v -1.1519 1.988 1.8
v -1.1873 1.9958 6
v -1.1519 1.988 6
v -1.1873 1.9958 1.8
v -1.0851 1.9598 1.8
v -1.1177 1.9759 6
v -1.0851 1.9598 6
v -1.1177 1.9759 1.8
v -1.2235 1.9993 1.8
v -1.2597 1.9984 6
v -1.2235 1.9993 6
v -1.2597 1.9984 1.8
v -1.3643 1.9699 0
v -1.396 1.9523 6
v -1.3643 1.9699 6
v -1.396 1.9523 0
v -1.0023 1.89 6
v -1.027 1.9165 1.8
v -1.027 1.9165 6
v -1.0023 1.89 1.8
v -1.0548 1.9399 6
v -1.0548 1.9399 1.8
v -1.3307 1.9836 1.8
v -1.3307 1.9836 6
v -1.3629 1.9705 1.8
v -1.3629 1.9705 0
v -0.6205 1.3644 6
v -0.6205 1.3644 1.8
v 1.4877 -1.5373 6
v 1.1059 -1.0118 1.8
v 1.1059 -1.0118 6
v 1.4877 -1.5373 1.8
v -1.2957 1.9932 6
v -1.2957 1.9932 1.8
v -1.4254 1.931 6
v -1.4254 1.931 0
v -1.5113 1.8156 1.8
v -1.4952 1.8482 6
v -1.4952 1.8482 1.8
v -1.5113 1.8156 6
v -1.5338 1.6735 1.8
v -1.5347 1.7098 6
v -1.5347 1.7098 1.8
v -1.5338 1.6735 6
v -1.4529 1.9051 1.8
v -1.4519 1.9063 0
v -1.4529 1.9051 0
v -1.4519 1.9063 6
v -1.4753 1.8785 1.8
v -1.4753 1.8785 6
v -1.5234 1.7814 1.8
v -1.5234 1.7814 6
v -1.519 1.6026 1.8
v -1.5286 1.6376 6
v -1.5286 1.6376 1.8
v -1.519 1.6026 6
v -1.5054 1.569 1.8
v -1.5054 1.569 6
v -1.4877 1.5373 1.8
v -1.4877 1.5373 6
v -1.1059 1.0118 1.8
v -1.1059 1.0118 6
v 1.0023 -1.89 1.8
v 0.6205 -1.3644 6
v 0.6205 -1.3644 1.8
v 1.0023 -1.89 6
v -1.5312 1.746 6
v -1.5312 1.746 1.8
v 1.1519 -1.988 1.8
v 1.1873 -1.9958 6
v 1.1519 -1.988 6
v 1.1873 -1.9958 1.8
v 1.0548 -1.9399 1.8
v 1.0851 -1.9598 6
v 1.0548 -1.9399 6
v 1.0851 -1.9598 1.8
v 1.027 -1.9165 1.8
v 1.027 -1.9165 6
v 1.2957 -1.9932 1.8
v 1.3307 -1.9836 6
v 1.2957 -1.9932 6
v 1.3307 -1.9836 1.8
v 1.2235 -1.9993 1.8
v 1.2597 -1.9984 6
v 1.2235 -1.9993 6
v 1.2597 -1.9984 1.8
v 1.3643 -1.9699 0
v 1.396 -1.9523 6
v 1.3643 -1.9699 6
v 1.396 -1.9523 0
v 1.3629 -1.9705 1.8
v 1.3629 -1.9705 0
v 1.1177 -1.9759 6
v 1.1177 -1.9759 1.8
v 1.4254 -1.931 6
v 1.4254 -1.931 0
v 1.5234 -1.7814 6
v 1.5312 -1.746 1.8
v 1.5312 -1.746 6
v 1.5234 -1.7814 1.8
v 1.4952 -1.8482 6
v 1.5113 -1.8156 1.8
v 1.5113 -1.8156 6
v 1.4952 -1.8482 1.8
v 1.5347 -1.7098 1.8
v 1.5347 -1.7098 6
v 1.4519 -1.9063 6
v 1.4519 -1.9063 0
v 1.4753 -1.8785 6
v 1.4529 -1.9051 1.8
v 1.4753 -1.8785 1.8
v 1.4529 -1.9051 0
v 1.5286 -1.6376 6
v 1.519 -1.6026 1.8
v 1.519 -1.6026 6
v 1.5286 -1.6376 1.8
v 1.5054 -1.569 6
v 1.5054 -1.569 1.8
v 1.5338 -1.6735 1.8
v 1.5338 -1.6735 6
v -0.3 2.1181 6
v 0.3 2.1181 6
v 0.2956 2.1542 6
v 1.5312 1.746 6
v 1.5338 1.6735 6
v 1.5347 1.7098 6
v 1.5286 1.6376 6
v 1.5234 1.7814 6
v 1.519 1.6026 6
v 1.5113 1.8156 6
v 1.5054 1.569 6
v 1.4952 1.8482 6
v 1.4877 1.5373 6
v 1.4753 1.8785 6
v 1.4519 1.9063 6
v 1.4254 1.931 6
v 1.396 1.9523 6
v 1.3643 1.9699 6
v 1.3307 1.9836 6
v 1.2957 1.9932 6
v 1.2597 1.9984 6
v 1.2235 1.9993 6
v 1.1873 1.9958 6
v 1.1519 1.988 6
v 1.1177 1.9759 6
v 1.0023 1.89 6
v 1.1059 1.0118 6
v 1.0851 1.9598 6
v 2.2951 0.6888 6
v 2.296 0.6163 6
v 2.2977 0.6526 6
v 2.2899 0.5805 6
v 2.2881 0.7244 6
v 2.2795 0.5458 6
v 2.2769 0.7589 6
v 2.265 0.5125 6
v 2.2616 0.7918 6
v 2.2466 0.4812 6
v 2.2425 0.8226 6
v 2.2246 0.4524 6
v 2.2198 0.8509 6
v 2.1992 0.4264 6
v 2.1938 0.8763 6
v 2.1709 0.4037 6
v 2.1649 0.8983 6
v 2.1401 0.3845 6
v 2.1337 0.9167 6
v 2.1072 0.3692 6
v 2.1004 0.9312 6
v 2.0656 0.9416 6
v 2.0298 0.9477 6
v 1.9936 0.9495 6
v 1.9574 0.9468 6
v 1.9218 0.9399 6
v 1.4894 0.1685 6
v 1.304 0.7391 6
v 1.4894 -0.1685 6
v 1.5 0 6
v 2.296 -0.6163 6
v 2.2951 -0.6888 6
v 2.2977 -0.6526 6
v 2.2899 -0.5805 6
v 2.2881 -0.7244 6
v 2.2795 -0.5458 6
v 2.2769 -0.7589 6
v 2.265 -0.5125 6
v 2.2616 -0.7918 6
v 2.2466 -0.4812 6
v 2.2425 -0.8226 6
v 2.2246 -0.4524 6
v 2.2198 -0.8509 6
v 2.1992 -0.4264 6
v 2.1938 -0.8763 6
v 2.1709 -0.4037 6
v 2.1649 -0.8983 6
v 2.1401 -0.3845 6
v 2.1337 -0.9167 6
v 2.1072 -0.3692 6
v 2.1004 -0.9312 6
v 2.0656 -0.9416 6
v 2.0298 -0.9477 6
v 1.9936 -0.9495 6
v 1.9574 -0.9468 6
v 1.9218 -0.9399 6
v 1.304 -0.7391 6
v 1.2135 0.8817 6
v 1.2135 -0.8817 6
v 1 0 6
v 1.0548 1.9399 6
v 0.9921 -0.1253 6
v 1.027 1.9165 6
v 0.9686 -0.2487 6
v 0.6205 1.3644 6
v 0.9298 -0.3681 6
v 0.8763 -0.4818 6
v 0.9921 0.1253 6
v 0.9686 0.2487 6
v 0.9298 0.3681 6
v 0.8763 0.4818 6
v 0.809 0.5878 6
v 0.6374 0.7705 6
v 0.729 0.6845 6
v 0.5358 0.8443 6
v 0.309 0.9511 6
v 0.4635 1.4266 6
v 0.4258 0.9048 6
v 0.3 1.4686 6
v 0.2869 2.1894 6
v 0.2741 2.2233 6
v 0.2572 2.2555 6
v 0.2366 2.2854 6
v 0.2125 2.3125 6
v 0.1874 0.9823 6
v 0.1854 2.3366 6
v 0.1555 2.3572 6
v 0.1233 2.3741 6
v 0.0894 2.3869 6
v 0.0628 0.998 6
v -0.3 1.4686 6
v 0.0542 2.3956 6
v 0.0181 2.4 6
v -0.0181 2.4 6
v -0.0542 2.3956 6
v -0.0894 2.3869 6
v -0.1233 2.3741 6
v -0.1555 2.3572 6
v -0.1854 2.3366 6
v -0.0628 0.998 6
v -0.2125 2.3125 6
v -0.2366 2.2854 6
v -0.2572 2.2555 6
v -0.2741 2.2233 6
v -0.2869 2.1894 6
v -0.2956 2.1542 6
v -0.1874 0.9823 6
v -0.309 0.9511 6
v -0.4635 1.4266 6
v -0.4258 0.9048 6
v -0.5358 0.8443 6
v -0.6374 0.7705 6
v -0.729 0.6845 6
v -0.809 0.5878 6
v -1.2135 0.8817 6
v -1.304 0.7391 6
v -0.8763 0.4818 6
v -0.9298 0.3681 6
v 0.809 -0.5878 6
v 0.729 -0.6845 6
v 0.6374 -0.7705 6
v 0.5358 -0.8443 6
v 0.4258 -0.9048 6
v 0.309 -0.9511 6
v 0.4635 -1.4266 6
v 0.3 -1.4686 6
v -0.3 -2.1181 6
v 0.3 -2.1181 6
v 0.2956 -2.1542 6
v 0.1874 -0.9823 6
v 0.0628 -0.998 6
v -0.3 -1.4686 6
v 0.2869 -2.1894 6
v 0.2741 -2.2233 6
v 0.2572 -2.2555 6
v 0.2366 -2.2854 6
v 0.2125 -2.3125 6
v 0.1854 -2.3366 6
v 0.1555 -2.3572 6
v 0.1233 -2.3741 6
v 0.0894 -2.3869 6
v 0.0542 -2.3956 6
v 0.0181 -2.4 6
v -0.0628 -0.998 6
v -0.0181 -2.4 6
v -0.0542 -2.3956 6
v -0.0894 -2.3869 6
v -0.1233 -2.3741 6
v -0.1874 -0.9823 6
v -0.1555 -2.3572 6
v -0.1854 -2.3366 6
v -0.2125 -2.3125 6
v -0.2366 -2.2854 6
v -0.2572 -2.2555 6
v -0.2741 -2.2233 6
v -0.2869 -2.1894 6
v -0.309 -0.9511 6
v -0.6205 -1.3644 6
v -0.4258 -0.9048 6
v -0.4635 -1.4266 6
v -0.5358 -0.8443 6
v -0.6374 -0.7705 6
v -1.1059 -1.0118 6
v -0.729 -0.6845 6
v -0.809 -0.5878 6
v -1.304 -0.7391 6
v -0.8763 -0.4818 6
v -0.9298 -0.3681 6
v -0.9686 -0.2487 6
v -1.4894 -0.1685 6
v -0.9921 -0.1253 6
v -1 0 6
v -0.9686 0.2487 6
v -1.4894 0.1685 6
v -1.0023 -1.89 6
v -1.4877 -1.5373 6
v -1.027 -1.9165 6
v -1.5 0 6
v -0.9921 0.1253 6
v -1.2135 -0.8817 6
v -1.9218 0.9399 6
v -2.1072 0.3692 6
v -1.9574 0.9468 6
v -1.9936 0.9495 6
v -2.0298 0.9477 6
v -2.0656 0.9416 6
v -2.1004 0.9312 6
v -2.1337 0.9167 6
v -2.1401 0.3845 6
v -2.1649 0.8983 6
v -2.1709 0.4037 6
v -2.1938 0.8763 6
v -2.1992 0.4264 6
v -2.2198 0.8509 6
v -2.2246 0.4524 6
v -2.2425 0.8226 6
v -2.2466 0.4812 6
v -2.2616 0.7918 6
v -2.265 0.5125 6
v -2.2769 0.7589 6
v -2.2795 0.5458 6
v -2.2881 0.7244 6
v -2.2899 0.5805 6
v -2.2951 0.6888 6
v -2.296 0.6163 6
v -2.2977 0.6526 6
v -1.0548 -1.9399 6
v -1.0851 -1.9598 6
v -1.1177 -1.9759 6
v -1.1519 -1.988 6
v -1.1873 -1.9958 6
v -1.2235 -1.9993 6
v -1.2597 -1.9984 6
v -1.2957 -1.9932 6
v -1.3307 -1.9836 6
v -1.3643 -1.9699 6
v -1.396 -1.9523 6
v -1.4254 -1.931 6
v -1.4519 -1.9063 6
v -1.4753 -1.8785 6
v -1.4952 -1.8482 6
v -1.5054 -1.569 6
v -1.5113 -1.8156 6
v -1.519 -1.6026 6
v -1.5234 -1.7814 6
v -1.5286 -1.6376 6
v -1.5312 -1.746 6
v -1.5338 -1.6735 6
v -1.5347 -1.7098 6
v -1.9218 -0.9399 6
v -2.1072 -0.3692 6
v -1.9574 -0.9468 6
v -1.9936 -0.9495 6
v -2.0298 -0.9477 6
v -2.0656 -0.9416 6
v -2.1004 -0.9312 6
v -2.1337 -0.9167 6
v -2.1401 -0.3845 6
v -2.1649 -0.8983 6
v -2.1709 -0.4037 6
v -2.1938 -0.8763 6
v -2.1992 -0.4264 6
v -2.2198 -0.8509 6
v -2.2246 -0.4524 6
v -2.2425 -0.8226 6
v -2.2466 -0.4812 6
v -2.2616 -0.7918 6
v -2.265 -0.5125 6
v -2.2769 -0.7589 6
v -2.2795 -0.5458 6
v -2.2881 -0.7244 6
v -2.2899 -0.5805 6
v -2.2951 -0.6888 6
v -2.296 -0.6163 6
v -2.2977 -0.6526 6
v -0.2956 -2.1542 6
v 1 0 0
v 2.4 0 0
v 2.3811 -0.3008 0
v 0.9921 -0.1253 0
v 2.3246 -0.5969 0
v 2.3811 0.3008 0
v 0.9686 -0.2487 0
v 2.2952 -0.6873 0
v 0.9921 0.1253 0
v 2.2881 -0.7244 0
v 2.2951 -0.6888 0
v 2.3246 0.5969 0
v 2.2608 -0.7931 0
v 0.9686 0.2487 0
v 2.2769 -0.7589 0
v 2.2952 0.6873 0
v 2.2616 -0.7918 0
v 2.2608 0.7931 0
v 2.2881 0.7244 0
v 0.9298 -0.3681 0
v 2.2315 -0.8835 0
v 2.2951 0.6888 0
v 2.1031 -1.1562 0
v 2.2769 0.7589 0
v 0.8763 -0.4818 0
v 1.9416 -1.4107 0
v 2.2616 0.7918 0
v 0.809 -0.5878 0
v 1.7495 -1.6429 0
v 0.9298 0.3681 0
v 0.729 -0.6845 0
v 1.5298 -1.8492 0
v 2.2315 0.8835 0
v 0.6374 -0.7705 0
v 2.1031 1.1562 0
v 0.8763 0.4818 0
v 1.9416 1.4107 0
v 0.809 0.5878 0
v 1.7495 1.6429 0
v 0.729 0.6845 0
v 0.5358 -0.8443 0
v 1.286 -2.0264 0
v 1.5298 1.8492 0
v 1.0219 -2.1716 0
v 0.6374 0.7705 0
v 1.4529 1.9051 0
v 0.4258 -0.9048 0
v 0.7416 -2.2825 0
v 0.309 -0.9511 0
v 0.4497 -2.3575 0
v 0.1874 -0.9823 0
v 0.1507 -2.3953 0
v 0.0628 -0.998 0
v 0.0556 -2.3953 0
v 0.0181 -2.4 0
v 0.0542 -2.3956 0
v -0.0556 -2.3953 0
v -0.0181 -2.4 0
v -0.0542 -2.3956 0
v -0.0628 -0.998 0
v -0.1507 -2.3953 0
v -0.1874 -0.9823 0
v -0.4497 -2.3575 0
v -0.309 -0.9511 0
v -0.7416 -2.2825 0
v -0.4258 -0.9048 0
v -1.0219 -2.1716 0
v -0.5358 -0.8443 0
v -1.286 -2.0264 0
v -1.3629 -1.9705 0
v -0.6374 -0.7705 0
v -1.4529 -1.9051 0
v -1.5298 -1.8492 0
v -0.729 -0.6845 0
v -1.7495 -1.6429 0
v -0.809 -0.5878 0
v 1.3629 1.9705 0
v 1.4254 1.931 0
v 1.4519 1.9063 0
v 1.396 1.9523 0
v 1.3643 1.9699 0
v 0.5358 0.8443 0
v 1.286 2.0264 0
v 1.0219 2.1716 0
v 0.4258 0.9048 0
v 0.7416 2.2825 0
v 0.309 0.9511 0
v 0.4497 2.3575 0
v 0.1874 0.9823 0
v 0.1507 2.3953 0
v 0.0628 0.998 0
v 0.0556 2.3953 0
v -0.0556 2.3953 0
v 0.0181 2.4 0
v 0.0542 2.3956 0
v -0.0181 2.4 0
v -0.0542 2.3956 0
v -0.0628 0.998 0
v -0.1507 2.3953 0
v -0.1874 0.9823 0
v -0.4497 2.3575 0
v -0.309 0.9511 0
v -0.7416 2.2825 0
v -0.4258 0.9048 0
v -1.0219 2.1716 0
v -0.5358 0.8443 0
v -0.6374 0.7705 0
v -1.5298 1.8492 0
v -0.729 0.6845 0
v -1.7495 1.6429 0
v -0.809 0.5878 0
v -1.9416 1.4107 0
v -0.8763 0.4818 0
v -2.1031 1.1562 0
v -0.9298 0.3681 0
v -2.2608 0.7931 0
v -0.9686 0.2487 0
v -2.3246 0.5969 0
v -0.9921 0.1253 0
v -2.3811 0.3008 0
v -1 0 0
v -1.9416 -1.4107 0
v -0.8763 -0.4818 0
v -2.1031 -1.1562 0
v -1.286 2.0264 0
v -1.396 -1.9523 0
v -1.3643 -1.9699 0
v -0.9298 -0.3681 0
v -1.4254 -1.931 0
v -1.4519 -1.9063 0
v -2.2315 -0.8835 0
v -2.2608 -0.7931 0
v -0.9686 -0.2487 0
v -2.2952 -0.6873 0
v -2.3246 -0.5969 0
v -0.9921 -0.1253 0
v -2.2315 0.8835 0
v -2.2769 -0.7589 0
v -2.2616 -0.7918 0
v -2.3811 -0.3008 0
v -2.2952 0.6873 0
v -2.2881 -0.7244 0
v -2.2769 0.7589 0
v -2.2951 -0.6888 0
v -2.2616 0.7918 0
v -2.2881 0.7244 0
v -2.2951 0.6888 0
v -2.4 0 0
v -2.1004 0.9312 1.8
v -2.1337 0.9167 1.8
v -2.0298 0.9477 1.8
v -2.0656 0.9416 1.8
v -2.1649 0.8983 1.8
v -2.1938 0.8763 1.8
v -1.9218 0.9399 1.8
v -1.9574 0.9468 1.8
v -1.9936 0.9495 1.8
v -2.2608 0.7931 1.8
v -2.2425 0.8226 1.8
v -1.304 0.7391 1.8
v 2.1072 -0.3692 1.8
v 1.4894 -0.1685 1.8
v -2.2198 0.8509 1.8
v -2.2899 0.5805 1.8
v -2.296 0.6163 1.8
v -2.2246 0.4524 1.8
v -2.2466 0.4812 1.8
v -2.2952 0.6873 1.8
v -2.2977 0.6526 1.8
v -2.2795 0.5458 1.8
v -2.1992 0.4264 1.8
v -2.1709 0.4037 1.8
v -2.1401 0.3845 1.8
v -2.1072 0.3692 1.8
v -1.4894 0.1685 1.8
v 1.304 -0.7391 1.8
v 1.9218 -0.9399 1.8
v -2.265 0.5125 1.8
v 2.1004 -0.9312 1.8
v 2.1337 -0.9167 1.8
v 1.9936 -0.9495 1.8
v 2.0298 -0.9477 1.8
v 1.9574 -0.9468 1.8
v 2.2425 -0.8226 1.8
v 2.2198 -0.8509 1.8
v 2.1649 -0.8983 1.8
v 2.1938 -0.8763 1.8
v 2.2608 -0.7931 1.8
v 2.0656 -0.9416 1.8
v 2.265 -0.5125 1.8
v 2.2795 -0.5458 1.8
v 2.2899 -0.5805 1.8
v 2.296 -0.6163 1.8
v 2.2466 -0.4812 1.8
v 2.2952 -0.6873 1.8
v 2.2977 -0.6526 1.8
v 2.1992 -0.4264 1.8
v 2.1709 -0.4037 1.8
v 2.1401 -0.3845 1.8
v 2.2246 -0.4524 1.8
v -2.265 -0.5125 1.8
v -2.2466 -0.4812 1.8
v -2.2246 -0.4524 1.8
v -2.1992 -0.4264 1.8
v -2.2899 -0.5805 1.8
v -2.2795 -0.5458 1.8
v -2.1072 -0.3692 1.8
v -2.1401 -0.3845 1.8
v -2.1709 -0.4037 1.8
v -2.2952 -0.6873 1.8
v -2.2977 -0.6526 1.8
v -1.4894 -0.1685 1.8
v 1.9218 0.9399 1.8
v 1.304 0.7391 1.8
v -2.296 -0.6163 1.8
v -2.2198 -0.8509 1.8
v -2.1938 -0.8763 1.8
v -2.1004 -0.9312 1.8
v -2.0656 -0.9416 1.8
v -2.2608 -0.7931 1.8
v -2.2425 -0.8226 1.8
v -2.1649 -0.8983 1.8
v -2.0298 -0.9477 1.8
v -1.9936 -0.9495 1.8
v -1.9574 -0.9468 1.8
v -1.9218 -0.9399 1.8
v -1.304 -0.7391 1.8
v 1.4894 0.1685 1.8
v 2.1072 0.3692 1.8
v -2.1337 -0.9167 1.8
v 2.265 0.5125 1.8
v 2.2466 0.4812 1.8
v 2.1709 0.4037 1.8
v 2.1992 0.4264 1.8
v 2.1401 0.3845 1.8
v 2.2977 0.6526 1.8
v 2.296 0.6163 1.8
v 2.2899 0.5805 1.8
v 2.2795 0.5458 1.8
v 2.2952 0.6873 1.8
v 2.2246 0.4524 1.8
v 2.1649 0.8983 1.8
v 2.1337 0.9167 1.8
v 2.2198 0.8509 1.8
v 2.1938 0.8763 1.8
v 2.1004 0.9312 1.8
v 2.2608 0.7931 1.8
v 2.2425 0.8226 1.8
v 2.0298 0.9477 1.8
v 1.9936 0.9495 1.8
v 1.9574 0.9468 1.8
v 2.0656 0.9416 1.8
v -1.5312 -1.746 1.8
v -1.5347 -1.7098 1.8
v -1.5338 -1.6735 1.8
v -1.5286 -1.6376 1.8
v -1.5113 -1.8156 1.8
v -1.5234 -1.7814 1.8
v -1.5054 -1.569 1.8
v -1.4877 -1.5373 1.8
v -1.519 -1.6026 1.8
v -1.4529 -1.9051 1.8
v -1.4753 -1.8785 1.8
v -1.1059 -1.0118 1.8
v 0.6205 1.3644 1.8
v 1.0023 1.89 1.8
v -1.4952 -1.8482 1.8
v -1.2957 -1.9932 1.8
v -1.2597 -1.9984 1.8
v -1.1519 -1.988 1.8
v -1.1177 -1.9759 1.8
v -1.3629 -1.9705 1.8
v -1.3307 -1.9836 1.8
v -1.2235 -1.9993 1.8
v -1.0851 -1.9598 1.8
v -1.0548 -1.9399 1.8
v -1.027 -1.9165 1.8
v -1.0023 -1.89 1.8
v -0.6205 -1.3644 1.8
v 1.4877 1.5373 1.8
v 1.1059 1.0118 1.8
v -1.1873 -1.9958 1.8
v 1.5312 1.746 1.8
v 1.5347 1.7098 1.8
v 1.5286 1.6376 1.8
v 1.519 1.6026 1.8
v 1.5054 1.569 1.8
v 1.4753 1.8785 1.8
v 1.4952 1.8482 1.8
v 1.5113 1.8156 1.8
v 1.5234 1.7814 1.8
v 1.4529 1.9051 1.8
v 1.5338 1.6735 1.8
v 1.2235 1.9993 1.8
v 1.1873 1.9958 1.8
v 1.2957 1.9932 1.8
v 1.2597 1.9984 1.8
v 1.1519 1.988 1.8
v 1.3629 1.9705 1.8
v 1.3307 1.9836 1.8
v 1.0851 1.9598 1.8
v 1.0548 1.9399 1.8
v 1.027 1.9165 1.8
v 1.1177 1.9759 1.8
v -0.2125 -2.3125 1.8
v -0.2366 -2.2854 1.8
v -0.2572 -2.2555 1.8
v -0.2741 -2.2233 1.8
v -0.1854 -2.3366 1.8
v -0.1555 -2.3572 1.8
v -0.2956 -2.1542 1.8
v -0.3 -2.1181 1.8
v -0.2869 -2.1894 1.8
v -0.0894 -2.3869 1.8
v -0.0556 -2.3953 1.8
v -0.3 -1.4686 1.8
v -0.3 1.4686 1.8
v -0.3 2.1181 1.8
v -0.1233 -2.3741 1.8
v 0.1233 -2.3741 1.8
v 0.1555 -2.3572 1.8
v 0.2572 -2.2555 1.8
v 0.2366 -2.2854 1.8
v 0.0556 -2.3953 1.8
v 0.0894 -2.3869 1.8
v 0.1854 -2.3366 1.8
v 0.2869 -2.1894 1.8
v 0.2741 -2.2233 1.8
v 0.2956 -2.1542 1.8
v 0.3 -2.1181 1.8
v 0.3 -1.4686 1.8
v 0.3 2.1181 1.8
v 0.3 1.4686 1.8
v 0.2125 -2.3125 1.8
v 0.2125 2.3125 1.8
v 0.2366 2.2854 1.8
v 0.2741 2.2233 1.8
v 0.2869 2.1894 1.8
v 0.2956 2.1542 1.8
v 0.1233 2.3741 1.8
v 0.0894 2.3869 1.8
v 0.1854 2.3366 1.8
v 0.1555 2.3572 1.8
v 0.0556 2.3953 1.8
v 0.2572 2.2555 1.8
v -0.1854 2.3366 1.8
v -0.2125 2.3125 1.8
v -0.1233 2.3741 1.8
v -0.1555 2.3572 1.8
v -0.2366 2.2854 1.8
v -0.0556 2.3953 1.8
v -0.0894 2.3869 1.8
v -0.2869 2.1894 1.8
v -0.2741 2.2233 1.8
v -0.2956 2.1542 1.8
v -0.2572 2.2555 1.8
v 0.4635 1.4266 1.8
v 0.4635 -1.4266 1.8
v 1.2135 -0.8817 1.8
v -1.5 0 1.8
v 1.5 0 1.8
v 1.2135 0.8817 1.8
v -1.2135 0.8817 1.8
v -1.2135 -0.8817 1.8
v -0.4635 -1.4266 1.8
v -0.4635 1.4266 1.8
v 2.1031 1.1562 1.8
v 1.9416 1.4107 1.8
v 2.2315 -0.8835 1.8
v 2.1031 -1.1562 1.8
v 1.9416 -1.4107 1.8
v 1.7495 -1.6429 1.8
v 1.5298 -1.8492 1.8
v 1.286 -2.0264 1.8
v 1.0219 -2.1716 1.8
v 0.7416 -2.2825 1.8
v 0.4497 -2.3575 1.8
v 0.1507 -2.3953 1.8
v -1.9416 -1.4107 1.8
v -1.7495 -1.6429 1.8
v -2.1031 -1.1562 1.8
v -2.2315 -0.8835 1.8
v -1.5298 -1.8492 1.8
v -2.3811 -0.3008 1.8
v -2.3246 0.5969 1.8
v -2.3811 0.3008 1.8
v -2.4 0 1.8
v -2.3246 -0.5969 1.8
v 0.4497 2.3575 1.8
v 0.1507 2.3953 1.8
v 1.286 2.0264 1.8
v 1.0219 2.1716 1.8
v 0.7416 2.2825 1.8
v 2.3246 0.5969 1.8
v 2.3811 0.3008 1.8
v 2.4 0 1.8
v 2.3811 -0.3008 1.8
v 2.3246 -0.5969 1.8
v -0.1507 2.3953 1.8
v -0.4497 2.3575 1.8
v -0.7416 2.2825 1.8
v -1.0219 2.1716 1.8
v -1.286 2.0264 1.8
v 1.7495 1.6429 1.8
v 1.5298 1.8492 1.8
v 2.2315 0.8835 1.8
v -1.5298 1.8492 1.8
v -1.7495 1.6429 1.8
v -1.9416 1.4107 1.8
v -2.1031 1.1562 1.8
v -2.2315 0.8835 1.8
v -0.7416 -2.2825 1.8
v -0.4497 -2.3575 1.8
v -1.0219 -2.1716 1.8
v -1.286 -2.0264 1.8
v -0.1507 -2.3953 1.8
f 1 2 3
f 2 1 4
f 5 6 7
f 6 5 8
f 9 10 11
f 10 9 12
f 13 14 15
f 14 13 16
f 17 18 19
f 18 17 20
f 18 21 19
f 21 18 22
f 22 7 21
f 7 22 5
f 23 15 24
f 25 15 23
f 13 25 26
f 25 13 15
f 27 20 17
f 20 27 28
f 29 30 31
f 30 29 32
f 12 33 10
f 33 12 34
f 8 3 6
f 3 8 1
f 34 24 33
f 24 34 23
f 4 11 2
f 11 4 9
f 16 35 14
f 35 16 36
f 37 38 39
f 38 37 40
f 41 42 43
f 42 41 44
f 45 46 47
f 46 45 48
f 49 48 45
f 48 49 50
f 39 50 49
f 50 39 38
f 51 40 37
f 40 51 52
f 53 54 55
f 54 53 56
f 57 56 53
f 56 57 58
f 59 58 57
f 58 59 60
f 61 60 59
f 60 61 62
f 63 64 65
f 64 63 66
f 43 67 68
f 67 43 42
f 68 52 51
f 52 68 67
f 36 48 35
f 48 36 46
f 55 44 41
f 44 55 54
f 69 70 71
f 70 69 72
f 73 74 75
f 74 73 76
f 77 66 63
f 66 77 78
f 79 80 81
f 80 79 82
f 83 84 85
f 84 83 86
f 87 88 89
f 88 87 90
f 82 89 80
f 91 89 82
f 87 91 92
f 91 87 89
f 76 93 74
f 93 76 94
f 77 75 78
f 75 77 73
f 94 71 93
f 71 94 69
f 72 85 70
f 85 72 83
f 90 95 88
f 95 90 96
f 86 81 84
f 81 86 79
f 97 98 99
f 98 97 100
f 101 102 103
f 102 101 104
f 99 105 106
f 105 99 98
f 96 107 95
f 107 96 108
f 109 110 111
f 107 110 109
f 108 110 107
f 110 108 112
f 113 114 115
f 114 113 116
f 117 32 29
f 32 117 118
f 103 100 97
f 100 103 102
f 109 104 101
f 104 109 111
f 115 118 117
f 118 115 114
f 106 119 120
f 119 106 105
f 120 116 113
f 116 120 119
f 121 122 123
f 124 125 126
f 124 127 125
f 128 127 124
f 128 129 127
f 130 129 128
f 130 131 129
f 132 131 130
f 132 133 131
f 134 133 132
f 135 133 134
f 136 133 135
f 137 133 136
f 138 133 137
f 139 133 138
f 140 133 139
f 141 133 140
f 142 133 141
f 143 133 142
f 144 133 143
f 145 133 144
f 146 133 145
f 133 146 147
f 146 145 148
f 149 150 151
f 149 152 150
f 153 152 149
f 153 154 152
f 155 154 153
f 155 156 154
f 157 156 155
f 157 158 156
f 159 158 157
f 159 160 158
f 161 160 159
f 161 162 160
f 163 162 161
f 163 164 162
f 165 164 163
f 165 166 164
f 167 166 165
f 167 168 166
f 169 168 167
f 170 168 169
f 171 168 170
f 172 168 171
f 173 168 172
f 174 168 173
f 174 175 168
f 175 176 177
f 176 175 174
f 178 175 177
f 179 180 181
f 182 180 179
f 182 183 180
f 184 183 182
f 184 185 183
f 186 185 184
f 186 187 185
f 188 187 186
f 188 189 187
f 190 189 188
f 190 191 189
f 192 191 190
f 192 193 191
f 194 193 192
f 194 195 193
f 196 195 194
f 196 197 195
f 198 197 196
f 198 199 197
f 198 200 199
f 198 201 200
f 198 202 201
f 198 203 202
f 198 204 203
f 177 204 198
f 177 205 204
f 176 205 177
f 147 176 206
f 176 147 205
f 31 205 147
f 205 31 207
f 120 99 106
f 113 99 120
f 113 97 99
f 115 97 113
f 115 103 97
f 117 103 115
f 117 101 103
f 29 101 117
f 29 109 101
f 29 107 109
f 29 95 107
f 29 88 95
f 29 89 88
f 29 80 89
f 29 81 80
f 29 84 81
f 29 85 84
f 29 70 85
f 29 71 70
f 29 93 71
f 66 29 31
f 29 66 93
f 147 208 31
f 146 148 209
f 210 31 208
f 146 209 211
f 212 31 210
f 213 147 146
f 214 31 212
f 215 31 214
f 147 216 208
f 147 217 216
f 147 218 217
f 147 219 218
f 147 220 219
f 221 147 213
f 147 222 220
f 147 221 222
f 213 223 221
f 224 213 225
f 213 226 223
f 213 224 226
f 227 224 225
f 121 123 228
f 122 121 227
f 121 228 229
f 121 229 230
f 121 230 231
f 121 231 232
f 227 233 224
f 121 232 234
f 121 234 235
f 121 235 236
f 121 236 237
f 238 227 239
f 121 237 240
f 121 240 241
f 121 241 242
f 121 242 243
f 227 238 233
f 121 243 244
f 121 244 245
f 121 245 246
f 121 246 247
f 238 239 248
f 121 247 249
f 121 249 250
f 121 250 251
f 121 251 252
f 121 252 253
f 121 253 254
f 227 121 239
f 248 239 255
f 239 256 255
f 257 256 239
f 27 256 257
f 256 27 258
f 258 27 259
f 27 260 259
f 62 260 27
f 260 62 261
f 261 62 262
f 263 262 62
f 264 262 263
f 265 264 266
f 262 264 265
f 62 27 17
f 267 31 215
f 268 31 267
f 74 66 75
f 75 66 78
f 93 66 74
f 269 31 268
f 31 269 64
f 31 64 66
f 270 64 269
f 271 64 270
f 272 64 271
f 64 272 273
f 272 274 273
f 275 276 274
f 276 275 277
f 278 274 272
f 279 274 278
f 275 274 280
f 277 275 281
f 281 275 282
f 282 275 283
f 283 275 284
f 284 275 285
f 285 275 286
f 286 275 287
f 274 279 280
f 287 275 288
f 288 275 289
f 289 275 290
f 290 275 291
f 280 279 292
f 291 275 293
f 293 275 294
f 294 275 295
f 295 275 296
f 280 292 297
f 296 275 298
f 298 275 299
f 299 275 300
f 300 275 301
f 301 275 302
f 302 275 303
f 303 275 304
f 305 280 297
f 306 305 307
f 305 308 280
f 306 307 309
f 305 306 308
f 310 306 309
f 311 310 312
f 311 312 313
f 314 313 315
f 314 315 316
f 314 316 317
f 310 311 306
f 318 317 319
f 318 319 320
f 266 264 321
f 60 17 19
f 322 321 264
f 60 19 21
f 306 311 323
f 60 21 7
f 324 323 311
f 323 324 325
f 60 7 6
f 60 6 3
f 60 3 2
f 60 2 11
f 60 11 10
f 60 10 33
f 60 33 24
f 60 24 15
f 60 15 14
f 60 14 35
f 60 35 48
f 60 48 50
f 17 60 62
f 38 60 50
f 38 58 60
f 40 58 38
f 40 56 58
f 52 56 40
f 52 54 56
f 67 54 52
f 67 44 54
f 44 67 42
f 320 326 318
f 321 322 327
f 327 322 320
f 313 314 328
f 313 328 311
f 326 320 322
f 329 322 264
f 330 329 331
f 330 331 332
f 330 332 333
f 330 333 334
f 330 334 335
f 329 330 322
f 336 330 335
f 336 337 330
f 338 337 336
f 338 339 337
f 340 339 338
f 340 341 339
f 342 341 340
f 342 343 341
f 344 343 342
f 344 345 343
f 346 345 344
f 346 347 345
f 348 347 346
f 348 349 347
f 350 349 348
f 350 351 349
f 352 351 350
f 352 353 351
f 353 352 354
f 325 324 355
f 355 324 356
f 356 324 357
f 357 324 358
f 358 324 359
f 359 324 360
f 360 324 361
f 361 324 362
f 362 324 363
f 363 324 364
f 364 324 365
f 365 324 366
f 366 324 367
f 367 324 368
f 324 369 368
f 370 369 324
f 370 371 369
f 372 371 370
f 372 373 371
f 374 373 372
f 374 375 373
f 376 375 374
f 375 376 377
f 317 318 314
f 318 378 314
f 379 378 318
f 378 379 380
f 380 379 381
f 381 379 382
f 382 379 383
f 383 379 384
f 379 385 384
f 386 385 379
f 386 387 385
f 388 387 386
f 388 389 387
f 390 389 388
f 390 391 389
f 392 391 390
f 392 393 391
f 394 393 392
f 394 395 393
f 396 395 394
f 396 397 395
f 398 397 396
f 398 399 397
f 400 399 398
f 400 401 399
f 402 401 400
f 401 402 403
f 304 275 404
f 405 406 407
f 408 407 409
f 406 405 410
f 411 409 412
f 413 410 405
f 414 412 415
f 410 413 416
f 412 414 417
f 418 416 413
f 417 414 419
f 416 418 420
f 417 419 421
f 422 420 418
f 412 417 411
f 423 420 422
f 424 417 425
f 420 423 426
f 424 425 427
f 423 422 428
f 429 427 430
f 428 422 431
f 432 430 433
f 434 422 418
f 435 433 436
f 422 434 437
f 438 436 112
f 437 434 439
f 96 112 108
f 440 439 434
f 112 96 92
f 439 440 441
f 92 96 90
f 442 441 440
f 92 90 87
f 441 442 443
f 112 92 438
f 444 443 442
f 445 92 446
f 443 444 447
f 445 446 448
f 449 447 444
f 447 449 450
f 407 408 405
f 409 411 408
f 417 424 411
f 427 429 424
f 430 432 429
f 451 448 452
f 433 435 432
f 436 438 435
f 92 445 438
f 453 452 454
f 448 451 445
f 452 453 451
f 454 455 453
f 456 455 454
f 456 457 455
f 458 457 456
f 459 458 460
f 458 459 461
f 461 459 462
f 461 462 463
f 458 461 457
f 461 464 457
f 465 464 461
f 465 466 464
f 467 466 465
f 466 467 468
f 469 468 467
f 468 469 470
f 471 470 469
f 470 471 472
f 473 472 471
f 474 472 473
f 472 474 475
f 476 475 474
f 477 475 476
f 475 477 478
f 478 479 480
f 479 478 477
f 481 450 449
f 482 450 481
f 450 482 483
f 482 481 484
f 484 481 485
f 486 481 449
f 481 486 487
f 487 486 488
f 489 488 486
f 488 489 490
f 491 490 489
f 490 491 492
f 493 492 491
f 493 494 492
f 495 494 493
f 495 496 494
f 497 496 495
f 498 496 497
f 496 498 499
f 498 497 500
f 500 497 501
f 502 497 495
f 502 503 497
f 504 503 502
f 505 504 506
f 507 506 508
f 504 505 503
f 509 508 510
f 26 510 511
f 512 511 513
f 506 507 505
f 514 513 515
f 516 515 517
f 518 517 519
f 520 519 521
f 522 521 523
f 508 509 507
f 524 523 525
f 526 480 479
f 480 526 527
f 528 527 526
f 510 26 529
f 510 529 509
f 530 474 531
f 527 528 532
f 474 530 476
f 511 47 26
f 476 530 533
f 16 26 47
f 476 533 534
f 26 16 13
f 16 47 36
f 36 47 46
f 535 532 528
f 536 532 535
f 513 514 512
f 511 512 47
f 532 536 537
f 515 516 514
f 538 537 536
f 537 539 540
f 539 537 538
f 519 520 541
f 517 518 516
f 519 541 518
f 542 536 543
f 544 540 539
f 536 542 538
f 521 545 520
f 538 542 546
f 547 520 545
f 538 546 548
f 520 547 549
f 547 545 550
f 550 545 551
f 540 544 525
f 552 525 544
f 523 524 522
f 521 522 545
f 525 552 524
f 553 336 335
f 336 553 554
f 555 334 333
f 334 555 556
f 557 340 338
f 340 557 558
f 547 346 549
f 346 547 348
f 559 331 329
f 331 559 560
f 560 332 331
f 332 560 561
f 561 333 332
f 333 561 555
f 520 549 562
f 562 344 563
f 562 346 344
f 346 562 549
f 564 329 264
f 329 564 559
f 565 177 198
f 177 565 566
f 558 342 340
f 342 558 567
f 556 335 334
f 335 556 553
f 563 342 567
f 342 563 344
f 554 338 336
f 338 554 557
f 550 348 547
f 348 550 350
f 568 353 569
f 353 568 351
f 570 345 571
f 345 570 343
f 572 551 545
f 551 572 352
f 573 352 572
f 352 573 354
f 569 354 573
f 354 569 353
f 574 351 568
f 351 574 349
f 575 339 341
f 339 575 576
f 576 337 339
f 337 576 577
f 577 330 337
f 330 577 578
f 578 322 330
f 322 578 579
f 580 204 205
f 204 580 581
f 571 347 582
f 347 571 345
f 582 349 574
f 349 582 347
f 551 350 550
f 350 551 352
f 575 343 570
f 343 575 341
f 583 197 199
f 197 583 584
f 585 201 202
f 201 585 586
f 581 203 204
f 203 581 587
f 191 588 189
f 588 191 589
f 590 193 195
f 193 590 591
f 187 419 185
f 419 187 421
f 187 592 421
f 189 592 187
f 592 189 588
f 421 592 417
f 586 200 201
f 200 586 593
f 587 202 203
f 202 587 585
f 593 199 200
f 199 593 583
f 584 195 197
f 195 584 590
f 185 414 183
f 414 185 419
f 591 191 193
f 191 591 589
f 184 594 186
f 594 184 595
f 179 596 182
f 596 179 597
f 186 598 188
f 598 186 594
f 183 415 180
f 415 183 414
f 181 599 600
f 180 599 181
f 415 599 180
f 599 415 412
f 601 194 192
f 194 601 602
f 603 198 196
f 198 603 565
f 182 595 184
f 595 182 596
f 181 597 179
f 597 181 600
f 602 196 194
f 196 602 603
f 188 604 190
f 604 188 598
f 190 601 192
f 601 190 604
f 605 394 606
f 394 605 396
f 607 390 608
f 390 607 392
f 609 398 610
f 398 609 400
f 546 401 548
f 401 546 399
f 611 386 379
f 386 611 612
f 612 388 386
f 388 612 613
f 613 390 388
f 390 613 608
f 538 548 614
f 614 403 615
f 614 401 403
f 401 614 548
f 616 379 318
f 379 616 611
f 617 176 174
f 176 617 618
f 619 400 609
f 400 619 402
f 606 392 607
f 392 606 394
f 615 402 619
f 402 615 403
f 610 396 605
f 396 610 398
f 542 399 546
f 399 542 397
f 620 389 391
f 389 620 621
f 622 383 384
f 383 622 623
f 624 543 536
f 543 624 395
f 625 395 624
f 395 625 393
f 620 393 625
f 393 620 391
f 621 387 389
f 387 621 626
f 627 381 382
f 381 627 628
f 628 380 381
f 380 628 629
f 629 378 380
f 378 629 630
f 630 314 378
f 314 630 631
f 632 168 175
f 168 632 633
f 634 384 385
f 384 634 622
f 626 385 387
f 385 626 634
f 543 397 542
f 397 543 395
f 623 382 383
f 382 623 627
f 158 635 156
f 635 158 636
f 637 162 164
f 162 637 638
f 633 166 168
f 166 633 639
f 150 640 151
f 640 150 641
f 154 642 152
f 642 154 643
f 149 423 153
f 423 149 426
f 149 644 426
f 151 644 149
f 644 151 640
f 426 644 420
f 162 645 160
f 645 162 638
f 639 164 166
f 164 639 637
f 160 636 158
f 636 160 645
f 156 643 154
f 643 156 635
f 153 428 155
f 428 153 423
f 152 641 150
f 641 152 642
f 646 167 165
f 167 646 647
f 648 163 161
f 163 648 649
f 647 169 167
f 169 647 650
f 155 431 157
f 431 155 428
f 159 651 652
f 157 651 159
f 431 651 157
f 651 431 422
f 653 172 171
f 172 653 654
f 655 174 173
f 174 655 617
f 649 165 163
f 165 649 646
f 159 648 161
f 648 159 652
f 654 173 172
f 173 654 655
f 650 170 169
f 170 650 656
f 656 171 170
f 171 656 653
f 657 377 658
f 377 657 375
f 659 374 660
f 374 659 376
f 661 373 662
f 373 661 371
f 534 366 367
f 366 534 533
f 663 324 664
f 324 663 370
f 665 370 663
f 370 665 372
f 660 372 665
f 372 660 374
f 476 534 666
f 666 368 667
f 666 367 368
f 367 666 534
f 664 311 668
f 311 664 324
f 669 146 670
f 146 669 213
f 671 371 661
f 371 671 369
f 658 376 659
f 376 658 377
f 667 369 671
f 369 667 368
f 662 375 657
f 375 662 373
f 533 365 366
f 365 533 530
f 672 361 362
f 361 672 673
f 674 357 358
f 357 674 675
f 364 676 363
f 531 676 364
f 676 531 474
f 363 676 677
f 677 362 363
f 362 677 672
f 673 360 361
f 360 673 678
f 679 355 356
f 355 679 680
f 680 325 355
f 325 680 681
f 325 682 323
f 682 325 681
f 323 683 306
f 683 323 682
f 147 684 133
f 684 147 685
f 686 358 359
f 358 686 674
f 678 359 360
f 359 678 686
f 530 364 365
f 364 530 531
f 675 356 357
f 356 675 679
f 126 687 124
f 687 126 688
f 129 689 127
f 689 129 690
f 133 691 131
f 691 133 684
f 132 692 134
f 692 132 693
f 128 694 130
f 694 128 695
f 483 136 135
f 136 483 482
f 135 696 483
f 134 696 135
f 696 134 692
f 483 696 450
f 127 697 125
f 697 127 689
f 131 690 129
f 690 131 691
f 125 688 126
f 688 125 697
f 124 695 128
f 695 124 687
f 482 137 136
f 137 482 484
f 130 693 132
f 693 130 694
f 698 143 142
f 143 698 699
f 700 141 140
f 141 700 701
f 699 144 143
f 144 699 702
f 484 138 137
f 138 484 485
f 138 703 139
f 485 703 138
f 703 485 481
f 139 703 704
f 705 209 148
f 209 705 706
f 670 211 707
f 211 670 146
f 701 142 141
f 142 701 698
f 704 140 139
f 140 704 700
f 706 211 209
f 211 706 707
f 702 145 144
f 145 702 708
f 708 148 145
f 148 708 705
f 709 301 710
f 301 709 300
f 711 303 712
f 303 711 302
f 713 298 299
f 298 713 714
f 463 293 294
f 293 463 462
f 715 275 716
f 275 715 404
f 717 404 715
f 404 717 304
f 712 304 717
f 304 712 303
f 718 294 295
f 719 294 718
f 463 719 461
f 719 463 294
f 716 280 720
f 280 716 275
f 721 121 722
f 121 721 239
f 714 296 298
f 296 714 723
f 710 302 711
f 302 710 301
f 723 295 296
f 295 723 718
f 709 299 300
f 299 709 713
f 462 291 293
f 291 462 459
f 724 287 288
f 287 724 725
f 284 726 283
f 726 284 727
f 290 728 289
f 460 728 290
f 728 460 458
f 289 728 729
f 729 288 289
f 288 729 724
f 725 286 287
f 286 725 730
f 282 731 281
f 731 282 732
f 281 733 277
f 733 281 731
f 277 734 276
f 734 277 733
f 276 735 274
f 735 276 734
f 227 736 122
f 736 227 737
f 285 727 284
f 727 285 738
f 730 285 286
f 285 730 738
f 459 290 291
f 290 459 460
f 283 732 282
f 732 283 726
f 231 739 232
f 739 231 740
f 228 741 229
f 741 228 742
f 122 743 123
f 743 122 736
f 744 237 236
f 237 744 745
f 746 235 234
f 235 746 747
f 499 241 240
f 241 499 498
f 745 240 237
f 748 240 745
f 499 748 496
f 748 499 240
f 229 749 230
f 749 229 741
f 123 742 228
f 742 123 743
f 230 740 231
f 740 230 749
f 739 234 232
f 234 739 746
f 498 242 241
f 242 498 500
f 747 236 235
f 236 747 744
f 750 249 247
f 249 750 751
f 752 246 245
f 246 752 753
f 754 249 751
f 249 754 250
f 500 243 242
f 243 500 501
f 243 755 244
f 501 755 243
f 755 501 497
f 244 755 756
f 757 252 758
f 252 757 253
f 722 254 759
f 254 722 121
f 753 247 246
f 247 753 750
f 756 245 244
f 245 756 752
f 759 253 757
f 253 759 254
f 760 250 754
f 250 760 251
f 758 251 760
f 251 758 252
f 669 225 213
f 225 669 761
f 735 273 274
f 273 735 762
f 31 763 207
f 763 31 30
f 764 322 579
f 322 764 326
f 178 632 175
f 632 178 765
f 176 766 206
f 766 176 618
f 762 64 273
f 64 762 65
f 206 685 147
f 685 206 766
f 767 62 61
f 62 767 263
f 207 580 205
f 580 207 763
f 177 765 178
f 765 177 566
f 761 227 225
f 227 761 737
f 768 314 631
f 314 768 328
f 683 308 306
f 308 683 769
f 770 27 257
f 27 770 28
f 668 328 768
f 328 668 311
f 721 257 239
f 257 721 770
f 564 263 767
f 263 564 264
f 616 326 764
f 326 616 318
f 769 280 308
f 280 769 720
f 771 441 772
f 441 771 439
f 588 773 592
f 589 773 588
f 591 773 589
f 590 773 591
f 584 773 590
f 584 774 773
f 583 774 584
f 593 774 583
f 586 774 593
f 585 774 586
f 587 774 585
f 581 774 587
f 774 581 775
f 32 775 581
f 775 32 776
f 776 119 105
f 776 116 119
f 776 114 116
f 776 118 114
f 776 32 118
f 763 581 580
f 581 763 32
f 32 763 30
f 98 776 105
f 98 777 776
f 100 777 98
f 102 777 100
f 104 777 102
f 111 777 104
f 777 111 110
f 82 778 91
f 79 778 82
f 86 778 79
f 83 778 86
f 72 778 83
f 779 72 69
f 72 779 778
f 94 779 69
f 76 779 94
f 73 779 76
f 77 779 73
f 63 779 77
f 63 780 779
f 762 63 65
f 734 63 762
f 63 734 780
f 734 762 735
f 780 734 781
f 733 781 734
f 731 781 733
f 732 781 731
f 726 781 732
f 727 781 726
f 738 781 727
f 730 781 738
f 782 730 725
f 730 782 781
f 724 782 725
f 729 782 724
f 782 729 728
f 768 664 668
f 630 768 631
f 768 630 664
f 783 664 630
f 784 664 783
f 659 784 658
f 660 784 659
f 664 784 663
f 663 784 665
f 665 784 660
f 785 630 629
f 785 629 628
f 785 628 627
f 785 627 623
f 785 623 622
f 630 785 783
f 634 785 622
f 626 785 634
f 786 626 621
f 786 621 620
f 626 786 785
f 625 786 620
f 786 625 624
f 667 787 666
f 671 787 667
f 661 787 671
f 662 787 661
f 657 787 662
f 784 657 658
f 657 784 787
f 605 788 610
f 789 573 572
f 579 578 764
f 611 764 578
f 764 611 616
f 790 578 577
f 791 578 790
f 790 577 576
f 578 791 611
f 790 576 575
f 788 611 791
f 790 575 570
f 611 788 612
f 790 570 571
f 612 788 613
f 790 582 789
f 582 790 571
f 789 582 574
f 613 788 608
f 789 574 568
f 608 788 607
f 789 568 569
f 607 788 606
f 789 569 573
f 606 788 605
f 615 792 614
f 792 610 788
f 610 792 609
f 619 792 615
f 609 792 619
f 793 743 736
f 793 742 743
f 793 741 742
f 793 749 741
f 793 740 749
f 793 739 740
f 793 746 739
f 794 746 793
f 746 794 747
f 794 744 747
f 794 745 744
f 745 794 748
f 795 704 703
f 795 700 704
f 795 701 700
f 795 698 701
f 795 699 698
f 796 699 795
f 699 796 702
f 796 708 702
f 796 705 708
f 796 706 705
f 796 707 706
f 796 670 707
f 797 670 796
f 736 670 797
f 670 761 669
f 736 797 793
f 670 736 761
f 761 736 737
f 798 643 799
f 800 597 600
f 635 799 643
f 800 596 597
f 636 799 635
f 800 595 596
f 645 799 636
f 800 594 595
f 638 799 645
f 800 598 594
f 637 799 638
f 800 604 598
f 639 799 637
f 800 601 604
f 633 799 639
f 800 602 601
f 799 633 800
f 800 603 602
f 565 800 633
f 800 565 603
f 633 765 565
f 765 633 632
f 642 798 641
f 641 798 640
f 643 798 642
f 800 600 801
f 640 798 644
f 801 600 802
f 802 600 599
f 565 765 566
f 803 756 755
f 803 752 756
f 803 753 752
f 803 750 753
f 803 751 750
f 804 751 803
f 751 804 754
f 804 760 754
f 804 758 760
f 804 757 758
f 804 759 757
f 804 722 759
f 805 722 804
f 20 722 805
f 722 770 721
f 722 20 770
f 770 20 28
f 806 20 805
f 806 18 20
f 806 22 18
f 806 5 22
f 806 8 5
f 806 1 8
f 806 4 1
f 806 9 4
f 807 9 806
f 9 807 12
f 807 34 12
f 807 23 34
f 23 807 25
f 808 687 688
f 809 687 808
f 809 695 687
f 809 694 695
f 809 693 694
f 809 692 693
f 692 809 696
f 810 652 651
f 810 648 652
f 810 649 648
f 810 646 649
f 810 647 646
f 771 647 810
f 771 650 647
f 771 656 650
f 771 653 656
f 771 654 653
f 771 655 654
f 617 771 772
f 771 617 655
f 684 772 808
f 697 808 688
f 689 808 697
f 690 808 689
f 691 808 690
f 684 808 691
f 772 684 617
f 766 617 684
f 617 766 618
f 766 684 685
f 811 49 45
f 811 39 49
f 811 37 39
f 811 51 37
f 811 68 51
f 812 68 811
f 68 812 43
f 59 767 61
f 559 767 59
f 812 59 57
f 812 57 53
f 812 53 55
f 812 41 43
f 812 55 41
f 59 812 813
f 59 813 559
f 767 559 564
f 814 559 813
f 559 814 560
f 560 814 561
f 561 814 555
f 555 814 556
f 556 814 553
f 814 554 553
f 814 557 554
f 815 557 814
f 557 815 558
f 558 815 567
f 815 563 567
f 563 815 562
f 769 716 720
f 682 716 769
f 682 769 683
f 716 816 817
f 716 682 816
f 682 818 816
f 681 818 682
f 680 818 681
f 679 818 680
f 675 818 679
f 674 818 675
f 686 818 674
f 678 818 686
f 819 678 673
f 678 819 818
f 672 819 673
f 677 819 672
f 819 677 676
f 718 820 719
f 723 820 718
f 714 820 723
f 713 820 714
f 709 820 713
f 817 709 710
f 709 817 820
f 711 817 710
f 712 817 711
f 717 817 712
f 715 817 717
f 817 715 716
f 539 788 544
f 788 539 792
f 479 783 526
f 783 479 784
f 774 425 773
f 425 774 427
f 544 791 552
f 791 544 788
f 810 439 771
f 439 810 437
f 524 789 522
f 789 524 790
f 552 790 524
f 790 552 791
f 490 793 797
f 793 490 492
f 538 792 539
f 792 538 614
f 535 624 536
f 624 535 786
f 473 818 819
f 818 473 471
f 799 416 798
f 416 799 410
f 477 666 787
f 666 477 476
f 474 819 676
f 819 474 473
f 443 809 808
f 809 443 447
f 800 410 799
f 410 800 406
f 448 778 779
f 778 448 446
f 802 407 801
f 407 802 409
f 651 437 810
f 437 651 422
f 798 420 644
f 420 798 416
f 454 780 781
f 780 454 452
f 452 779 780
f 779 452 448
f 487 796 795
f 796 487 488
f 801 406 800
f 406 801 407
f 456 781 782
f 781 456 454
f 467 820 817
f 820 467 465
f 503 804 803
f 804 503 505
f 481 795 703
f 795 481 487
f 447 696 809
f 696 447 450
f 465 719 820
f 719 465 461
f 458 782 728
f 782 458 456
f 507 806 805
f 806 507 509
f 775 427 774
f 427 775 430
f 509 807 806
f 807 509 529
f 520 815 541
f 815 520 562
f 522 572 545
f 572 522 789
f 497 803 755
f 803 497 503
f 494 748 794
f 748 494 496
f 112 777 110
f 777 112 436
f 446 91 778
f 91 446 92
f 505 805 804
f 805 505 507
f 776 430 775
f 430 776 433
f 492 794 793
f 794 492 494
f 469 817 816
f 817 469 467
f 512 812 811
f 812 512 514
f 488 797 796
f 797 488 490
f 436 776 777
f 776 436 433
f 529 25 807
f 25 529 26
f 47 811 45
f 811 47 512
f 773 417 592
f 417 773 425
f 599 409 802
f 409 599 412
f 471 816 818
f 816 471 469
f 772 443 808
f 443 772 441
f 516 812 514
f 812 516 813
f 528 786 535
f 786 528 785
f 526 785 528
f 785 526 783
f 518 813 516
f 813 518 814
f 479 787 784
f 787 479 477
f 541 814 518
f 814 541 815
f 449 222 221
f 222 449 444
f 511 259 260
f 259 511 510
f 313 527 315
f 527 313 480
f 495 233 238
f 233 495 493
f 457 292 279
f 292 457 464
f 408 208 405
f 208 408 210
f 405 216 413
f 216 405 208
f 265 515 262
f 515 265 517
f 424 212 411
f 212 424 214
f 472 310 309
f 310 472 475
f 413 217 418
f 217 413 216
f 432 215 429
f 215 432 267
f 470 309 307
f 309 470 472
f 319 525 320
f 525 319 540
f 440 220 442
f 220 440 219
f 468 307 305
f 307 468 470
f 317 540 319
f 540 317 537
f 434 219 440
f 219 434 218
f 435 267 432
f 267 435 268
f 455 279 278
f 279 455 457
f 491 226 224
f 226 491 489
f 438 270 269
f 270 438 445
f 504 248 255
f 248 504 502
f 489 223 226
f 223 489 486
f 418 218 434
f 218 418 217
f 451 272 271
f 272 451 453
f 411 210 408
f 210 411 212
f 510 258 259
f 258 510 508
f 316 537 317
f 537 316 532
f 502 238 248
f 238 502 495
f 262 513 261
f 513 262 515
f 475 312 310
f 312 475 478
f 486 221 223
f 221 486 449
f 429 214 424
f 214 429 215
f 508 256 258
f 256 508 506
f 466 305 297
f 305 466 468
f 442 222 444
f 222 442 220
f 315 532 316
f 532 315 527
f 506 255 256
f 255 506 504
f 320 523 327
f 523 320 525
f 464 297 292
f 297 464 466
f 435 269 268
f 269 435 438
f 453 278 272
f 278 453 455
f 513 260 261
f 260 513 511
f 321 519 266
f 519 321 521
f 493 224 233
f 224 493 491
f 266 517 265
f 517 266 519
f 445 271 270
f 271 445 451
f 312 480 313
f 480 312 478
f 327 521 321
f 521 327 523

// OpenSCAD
include <BOSL/constants.scad>
use <BOSL/shapes.scad>
use <BOSL/transforms.scad>

$fn=50;

difference() {
    union() {
        cylinder(h=6, d=3);
        cylinder(h=1.8, d=4.8);
        for (zr=[36 : 36 : 180]) {
            zrot(zr) cuboid([.6, 4.8, 6], align=V_UP, edges=EDGES_Z_ALL, fillet=.3);
        }
    }
    zmove(-1) cylinder(h=8, d=2);
}
